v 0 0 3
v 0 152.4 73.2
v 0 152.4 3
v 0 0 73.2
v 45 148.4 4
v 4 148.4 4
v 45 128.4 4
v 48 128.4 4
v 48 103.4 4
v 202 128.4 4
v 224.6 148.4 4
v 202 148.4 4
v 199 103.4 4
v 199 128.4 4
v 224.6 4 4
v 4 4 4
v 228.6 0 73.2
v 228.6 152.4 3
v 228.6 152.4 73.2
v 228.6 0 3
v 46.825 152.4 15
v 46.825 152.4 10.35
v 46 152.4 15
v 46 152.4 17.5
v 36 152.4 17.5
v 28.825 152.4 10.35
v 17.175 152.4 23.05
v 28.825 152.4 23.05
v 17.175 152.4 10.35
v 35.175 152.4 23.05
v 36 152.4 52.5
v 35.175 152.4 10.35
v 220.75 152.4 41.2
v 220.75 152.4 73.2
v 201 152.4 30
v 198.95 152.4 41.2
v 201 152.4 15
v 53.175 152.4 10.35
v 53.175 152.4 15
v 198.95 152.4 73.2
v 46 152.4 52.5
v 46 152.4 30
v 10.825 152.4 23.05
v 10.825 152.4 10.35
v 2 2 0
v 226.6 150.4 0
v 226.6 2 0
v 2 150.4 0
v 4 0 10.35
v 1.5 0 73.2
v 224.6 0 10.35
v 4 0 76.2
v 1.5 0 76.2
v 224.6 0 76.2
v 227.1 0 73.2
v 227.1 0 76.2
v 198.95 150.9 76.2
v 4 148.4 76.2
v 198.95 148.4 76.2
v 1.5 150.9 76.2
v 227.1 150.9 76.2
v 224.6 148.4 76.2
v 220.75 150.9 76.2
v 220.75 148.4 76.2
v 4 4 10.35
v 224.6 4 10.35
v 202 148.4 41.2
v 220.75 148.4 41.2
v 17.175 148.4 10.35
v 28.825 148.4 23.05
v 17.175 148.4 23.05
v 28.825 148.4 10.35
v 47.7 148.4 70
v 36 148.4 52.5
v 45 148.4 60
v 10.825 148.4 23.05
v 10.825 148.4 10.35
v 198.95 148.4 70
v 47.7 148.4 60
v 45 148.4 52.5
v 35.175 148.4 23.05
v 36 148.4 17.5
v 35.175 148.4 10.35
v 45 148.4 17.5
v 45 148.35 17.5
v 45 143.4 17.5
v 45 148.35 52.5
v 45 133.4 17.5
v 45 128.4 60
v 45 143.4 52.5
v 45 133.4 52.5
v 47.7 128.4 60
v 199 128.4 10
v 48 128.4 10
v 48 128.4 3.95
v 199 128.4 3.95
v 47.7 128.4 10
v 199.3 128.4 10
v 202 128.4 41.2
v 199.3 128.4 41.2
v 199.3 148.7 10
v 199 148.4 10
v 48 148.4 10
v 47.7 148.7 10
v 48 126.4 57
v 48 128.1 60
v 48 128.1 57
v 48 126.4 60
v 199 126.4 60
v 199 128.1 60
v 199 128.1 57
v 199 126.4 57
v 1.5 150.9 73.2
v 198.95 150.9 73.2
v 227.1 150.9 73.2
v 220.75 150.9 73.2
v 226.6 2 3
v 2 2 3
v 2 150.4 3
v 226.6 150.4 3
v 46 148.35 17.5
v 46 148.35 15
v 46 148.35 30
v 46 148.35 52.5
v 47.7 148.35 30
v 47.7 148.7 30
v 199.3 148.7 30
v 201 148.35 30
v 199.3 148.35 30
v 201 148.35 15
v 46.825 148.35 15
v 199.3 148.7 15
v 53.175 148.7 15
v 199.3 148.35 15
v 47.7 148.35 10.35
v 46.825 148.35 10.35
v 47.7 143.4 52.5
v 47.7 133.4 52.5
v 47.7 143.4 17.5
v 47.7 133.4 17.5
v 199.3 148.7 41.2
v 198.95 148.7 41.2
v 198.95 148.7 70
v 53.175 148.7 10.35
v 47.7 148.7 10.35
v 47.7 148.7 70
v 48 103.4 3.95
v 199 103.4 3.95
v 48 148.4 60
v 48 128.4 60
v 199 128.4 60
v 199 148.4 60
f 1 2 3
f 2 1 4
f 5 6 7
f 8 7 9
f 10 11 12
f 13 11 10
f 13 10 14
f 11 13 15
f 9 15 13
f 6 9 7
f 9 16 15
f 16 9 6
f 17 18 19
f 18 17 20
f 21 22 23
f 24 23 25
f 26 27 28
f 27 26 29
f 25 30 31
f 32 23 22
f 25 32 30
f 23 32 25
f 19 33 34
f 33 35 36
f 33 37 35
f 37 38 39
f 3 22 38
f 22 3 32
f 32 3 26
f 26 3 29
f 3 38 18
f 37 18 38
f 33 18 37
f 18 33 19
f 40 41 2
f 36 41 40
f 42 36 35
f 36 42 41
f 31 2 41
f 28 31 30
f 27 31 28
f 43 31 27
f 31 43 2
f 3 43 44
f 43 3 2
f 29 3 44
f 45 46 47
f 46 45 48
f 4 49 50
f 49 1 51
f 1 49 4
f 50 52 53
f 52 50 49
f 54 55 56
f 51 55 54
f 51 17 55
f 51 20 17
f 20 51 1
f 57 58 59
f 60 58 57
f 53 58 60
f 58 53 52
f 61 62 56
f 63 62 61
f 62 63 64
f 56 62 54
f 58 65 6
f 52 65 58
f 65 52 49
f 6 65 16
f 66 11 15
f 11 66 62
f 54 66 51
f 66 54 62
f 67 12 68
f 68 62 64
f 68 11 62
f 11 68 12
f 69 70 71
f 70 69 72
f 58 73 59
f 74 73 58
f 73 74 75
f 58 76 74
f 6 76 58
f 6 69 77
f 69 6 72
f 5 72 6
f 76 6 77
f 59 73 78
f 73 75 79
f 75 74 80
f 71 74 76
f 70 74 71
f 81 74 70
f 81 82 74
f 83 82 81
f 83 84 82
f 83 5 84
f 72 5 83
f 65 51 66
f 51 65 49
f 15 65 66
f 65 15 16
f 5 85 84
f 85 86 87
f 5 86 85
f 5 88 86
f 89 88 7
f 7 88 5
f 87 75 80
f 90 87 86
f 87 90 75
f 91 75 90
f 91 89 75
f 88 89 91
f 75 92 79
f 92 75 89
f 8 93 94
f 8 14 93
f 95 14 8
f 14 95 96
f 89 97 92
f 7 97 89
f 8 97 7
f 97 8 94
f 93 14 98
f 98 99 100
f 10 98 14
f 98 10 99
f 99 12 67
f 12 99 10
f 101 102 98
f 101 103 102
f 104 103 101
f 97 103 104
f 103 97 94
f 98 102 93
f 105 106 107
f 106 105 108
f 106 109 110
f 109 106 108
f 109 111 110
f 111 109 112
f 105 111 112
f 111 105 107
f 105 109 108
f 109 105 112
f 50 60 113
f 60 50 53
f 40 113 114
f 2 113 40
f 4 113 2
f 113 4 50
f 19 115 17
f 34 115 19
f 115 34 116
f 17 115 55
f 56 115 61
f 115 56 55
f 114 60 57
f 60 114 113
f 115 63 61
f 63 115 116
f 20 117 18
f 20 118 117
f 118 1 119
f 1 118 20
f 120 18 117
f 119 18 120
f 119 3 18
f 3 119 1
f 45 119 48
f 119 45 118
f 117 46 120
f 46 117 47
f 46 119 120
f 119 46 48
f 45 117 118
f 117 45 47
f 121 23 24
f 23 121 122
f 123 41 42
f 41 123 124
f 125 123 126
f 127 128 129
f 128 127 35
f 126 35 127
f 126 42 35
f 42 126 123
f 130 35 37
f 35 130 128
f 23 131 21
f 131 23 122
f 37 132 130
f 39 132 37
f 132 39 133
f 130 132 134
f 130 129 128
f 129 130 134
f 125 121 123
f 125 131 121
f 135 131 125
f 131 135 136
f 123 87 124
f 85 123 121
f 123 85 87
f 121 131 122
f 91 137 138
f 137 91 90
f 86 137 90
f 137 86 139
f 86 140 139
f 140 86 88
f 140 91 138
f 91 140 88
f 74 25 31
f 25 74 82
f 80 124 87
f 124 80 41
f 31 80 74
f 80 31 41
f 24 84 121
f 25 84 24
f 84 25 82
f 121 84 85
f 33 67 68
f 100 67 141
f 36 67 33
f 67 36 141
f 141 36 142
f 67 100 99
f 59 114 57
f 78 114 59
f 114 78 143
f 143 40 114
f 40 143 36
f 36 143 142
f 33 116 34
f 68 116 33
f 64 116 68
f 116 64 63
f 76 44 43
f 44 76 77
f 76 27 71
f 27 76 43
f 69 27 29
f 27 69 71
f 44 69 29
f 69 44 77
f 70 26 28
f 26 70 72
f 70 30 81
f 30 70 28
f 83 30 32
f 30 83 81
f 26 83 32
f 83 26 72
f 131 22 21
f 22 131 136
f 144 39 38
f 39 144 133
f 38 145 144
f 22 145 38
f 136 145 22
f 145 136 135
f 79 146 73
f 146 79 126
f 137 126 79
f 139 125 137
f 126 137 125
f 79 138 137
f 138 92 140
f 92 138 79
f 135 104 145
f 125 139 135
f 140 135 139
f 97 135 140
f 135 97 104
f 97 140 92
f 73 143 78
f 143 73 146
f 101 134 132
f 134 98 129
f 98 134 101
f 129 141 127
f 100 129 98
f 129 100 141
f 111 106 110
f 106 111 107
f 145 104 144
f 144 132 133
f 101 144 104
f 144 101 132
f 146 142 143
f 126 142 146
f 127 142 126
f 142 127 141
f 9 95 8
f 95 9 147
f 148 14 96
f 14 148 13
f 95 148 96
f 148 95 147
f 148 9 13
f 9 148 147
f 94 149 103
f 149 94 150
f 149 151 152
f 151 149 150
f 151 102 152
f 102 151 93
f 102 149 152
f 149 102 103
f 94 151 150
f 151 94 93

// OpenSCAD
// =============================================================================
// Project Trays — USB Hub Stackable Tray  (first draft v1)
// =============================================================================
// Outer envelope: 9" W × 6" D × 3" H
// Front (one 9" side): open, with 1/4" bottom ledge
// Back (other 9" side): Anker USB-C hub mount + cable routing
// Hub: 151 × 20 × 50 mm (L × T × H)
// Walls: ≥ 4 mm outer thickness
// Units: millimetres
// =============================================================================

// --- Conversions ---
inch = 25.4;

// --- Outer envelope ---
W = 9 * inch;          // 228.6  width  (X)
D = 6 * inch;          // 152.4  depth  (Y)
H = 3 * inch;          // 76.2   height (Z)

// --- Structure ---
wall      = 4;         // outer wall thickness (mm) — minimum per brief
floor_t   = 4;         // floor thickness
front_ledge_h = 0.25 * inch;  // 1/4" open-front ledge

// --- Stackability ---
stack_lip_h   = 3;     // height of nesting lip at top of walls
stack_step    = 1.5;   // outer inset of top rim / bottom foot
stack_clear   = 0.5;   // print clearance for nested stack

// --- Anker hub ---
hub_L = 151;           // length along back wall (X)
hub_T = 20;            // thickness into tray (Y)
hub_H = 50;            // height (Z)

// End clearances (from outer tray ends, along X)
// "35 mm deep from top" end → 1/2" from that tray end
// other end → 48 mm from that side
clear_half_in = 0.5 * inch;  // 12.7  — end with 35 mm deep top slot
clear_48      = 48;          //      — end with 10×35 wire opening

// Place the 35 mm-deep (from top) end on the RIGHT (smaller clearance),
// and the 48 mm clearance / 10×35 wire opening on the LEFT.
hub_x0 = clear_48;                    // left face of hub cavity
hub_x1 = hub_x0 + hub_L;              // right face
// Right residual to outer end: W - hub_x1  (≥ clear_half_in)
// Assert at render time via echo:
echo("hub X range", hub_x0, "→", hub_x1, "  right residual", W - hub_x1);
assert(W - hub_x1 >= clear_half_in - 0.01, "Hub does not leave 1/2\" on right end");
assert(hub_x0 >= clear_48 - 0.01, "Hub does not leave 48 mm on left side");

// Hub vertical placement: sit on a small shelf above floor so cables can run under
hub_shelf_h = 6;                      // shelf under hub
hub_z0 = floor_t + hub_shelf_h;       // bottom of hub cavity
hub_z1 = hub_z0 + hub_H;              // top of hub cavity (≈ 60 mm; tray is 76.2)

// Hub depth placement: against back wall, ports face into tray (+Y from back is wrong)
// Coordinate system:
//   X: 0 = left outer,  W = right outer
//   Y: 0 = front outer, D = back outer
//   Z: 0 = bottom outer, H = top
// Back wall inner face at Y = D - wall
// Hub occupies Y from (D - wall - hub_T) to (D - wall)  — flush to back wall inside
hub_y1 = D - wall;                    // back of hub (against back-wall inner face)
hub_y0 = hub_y1 - hub_T;              // front face of hub (ports face -Y into tray)

// Behind-hub wire groove in the BACK WALL: 5 mm deep (into wall toward outside),
// 15 mm tall, spanning hub length (with a little margin).
groove_depth = 5;                     // into back wall (Y+)
groove_h     = 15;                    // tall (Z)
groove_z0    = hub_z0 + 5;            // mid-low on hub back for cable pass-by
groove_margin_x = 2;

// --- Hub end openings ---
// LEFT end (48 mm clearance side): 10 × 35 mm opening for wires
//   Interpreted as a through-opening in the left-side bay wall / back-wall region
//   adjacent to the hub's left end — 10 mm wide (X) × 35 mm tall (Z).
left_open_w = 10;
left_open_h = 35;
left_open_z0 = hub_z0 + (hub_H - left_open_h) / 2;

// RIGHT end (1/2" clearance side): 10 mm wide × 35 mm DEEP from the TOP
//   Slot cut down from the top of the back-wall / right bay, 10 mm in X, 35 mm down in Z.
right_slot_w = 10;
right_slot_d = 35;                    // depth from top
// Position the slot just outboard of the hub right end, within the 1/2" clearance zone.
right_slot_x0 = hub_x1 + (clear_half_in - right_slot_w) / 2;
// Also open a matching notch in the hub bay so cable can leave the hub end upward.

// --- Back-wall cable pass-through notches (one side of the back) ---
// On the LEFT half of the back wall (extra clearance zone): several U-notches
// 1/4" wide × 1/2" deep, with a 1/4" bottom ledge so cable is not cut at the floor.
notch_w      = 0.25 * inch;           // 6.35
notch_depth  = 0.5  * inch;           // 12.7  how far down from top of wall? NO —
// Re-read: "cut outs ... 1/4 wide by 1/2 inch deep with a 1/4 inch ledge"
// → classic floor-level U-notch: 1/4" wide, 1/2" tall opening, 1/4" floor ledge under cable.
notch_h      = 0.5  * inch;           // opening height above the ledge
notch_ledge  = 0.25 * inch;           // solid ledge under the cable
notch_count  = 3;
notch_pitch  = 18;                    // centre-to-centre spacing
// Place notches in the left clearance zone, through the back wall.
notch_x_start = wall + 10;            // first notch centre-ish region

// --- Fillet / print helpers ---
$fn = 48;
eps = 0.05;

// =============================================================================
// MODULES
// =============================================================================

module outer_shell() {
    // Solid outer block
    cube([W, D, H]);
}

module inner_cavity() {
    // Main interior void — open at the front (Y=0) above the front ledge.
    // Leaves wall on L/R/back, floor, and front ledge.
    translate([wall, -eps, floor_t])
        cube([W - 2*wall, D - wall + eps, H - floor_t + eps]);
}

module front_ledge_keep() {
    // Re-add the front 1/4" ledge (full width between side walls).
    // The cavity cut removed everything at the front; this restores the ledge.
    translate([wall, 0, floor_t])
        cube([W - 2*wall, wall, front_ledge_h]);
}

// Actually better approach: build as union of parts rather than difference of full
// block, so open front is natural. Rebuild cleaner below.

module floor_plate() {
    cube([W, D, floor_t]);
}

module left_wall() {
    cube([wall, D, H]);
}

module right_wall() {
    translate([W - wall, 0, 0])
        cube([wall, D, H]);
}

module back_wall() {
    translate([0, D - wall, 0])
        cube([W, wall, H]);
}

module front_ledge() {
    // 1/4" high ledge on the open 9" front, spanning full width (including under walls
    // for strength / continuous floor edge).
    cube([W, wall, floor_t + front_ledge_h]);
}

module stack_top_step() {
    // Carve outer step at the top of L/R/back walls so an upper tray can nest.
    // Removes stack_step from the outer faces over the top stack_lip_h.
    // Left outer
    translate([-eps, -eps, H - stack_lip_h])
        cube([stack_step + eps, D + 2*eps, stack_lip_h + eps]);
    // Right outer
    translate([W - stack_step, -eps, H - stack_lip_h])
        cube([stack_step + eps, D + 2*eps, stack_lip_h + eps]);
    // Back outer
    translate([-eps, D - stack_step, H - stack_lip_h])
        cube([W + 2*eps, stack_step + eps, stack_lip_h + eps]);
    // Front outer of side-wall tips (front is open; step only on L/R front corners already covered)
}

module stack_bottom_foot_cut() {
    // Inset the bottom outer perimeter so the foot nests into the tray below's top step.
    // Foot outer size = outer - 2*(stack_step + stack_clear) on L/R/back;
    // front edge of foot inset similarly for a clean stack.
    inset = stack_step + stack_clear;
    // Left strip
    translate([-eps, -eps, -eps])
        cube([inset + eps, D + 2*eps, stack_lip_h + eps]);
    // Right strip
    translate([W - inset, -eps, -eps])
        cube([inset + eps, D + 2*eps, stack_lip_h + eps]);
    // Back strip
    translate([-eps, D - inset, -eps])
        cube([W + 2*eps, inset + eps, stack_lip_h + eps]);
    // Front strip
    translate([-eps, -eps, -eps])
        cube([W + 2*eps, inset + eps, stack_lip_h + eps]);
}

// --- Hub bay ---
// A pocket carved into the interior against the back wall that the hub drops into.
// Side fences hold X; a floor shelf holds Z; back wall holds Y+.
// Ports face into the tray (toward -Y / front).

module hub_side_fence_left() {
    // Thin fence just left of hub to locate it (uses part of the 48 mm clearance).
    fw = 3;
    // Place fence immediately left of hub
    x = hub_x0 - fw;
    y = hub_y0;
    z = floor_t;
    translate([x, y, z])
        cube([fw, hub_T, hub_z1 - floor_t]);
}

module hub_side_fence_right() {
    fw = 3;
    x = hub_x1;
    y = hub_y0;
    z = floor_t;
    translate([x, y, z])
        cube([fw, hub_T, hub_z1 - floor_t]);
}

module hub_shelf() {
    // Shelf under the hub, spanning hub length + fences, depth = hub_T
    fw = 3;
    translate([hub_x0 - fw, hub_y0, floor_t])
        cube([hub_L + 2*fw, hub_T, hub_shelf_h]);
}

module hub_retainer_lips() {
    // Small top lips on the front edge of the hub bay so the hub clips in from above
    // but cannot fall forward.  Leave the top open for drop-in install.
    lip = 2;
    lip_h = 3;
    // Front lip along hub front face, at top of hub
    translate([hub_x0, hub_y0 - lip, hub_z1 - lip_h])
        cube([hub_L, lip, lip_h]);
}

// --- Cutters (voids) ---

module hub_body_void() {
    // Clearance pocket for the hub body itself (slightly oversized for fit).
    fit = 0.6;
    translate([hub_x0 - fit/2, hub_y0 - fit/2, hub_z0])
        cube([hub_L + fit, hub_T + fit, hub_H + 10]); // open to top for drop-in
}

module behind_hub_groove() {
    // 5 mm deep × 15 mm tall groove in the back wall behind the hub for wires.
    translate([
        hub_x0 - groove_margin_x,
        D - wall - eps,
        groove_z0
    ])
        cube([
            hub_L + 2*groove_margin_x,
            groove_depth + eps,
            groove_h
        ]);
    // Also open a thin vertical channel at each end of the groove so wires can
    // enter/leave the groove from the ends.
    ch = 8;
    // left end channel through remaining wall
    translate([hub_x0 - groove_margin_x, D - wall - eps, groove_z0])
        cube([ch, wall + 2*eps, groove_h]);
    // right end channel
    translate([hub_x1 + groove_margin_x - ch, D - wall - eps, groove_z0])
        cube([ch, wall + 2*eps, groove_h]);
}

module left_wire_opening() {
    // 10 × 35 mm opening at the LEFT end of the hub for wires.
    // Cut through the left fence and into the back-wall region outboard of the hub,
    // and also a pass-through forward so cable can route into the tray.
    // Opening centred on hub height band.
    z0 = hub_z0 + (hub_H - left_open_h) / 2;
    // Through the left fence (X)
    translate([hub_x0 - 3 - eps, hub_y0 + (hub_T - left_open_w) / 2, z0])
        cube([3 + 2*eps + 2, left_open_w, left_open_h]);
    // Slot in back wall just left of hub, 10 wide (X) × 35 tall (Z), full wall depth
    translate([hub_x0 - left_open_w - 2, D - wall - eps, z0])
        cube([left_open_w, wall + 2*eps, left_open_h]);
}

module right_top_slot() {
    // 10 mm wide × 35 mm deep-from-top opening at the RIGHT end of the hub.
    // Cut from the top of the tray down 35 mm, through the back wall and right fence.
    z0 = H - right_slot_d;
    // Position: between hub right end and tray right end (the 1/2" clearance band)
    x0 = hub_x1 + ( (W - hub_x1) - right_slot_w ) / 2;
    // Through back wall
    translate([x0, D - wall - eps, z0])
        cube([right_slot_w, wall + 2*eps, right_slot_d + eps]);
    // Through right fence / hub-end bay so cable can rise from hub end
    translate([hub_x1 - eps, hub_y0, z0])
        cube([right_slot_w + (x0 - hub_x1) + 2, hub_T + wall + eps, right_slot_d + eps]);
    // Also open the top of the right fence entirely above hub for cable drop-in
    translate([hub_x1 - eps, hub_y0 - eps, z0])
        cube([3 + 2*eps, hub_T + 2*eps, right_slot_d + eps]);
}

module back_cable_notches() {
    // U-notches through the back wall on the LEFT side (clearance zone):
    // 1/4" wide × 1/2" tall opening, sitting on a 1/4" floor ledge.
    for (i = [0 : notch_count - 1]) {
        cx = notch_x_start + i * notch_pitch;
        // Opening starts at z = floor_t - wait: ledge is part of floor extended?
        // Ledge = bottom notch_ledge of the wall remains solid; opening above it.
        // Floor is already floor_t. The "1/4 inch ledge" is a raised sill in the
        // notch so the cable rests above a sharp floor/wall corner.
        z_open0 = floor_t + notch_ledge;
        translate([cx - notch_w/2, D - wall - eps, z_open0])
            cube([notch_w, wall + 2*eps, notch_h]);
        // Round-ish relief at the sill top edge (chamfer block) — keep simple:
        // extra 1 mm radius-equivalent by slightly widening at the sill is skipped
        // for draft; the solid ledge itself prevents a knife edge at floor level.
    }
}

module hub_access_throat() {
    // Keep the area in front of the hub ports open (already is — interior cavity).
    // Add a shallow recess in the floor in front of the hub so fat USB plugs clear.
    plug_clear_d = 25;
    plug_clear_h = 8;
    translate([hub_x0, hub_y0 - plug_clear_d, floor_t - eps])
        cube([hub_L, plug_clear_d, plug_clear_h + eps]);
}

// =============================================================================
// ASSEMBLY
// =============================================================================

module tray() {
    difference() {
        union() {
            // Primary structure
            floor_plate();
            left_wall();
            right_wall();
            back_wall();
            front_ledge();

            // Hub location features
            hub_side_fence_left();
            hub_side_fence_right();
            hub_shelf();
            hub_retainer_lips();
        }

        // Stackability
        stack_top_step();
        stack_bottom_foot_cut();

        // Hub + cable features
        hub_body_void();
        behind_hub_groove();
        left_wire_opening();
        right_top_slot();
        back_cable_notches();
        hub_access_throat();
    }
}

// Ghost hub for preview (not in final solid when render_hub_ghost = false)
render_hub_ghost = true;

module ghost_hub() {
    color([0.2, 0.55, 0.85, 0.45])
        translate([hub_x0, hub_y0, hub_z0])
            cube([hub_L, hub_T, hub_H]);
}

// --- Output ---
tray();

if (render_hub_ghost)
    ghost_hub();

// Dimension reference echoes
echo("=== Tray v1 ===");
echo("Outer W×D×H mm:", W, D, H);
echo("Wall / floor:", wall, floor_t);
echo("Front ledge H:", front_ledge_h);
echo("Hub cavity X:", hub_x0, "→", hub_x1, " (L=", hub_L, ")");
echo("Hub cavity Y:", hub_y0, "→", hub_y1, " (T=", hub_T, ")");
echo("Hub cavity Z:", hub_z0, "→", hub_z1, " (H=", hub_H, ")");
echo("Left clearance (outer):", hub_x0, "mm (need ≥48)");
echo("Right clearance (outer):", W - hub_x1, "mm (need ≥12.7)");
echo("Groove behind hub: ", groove_depth, "×", groove_h, "mm");
